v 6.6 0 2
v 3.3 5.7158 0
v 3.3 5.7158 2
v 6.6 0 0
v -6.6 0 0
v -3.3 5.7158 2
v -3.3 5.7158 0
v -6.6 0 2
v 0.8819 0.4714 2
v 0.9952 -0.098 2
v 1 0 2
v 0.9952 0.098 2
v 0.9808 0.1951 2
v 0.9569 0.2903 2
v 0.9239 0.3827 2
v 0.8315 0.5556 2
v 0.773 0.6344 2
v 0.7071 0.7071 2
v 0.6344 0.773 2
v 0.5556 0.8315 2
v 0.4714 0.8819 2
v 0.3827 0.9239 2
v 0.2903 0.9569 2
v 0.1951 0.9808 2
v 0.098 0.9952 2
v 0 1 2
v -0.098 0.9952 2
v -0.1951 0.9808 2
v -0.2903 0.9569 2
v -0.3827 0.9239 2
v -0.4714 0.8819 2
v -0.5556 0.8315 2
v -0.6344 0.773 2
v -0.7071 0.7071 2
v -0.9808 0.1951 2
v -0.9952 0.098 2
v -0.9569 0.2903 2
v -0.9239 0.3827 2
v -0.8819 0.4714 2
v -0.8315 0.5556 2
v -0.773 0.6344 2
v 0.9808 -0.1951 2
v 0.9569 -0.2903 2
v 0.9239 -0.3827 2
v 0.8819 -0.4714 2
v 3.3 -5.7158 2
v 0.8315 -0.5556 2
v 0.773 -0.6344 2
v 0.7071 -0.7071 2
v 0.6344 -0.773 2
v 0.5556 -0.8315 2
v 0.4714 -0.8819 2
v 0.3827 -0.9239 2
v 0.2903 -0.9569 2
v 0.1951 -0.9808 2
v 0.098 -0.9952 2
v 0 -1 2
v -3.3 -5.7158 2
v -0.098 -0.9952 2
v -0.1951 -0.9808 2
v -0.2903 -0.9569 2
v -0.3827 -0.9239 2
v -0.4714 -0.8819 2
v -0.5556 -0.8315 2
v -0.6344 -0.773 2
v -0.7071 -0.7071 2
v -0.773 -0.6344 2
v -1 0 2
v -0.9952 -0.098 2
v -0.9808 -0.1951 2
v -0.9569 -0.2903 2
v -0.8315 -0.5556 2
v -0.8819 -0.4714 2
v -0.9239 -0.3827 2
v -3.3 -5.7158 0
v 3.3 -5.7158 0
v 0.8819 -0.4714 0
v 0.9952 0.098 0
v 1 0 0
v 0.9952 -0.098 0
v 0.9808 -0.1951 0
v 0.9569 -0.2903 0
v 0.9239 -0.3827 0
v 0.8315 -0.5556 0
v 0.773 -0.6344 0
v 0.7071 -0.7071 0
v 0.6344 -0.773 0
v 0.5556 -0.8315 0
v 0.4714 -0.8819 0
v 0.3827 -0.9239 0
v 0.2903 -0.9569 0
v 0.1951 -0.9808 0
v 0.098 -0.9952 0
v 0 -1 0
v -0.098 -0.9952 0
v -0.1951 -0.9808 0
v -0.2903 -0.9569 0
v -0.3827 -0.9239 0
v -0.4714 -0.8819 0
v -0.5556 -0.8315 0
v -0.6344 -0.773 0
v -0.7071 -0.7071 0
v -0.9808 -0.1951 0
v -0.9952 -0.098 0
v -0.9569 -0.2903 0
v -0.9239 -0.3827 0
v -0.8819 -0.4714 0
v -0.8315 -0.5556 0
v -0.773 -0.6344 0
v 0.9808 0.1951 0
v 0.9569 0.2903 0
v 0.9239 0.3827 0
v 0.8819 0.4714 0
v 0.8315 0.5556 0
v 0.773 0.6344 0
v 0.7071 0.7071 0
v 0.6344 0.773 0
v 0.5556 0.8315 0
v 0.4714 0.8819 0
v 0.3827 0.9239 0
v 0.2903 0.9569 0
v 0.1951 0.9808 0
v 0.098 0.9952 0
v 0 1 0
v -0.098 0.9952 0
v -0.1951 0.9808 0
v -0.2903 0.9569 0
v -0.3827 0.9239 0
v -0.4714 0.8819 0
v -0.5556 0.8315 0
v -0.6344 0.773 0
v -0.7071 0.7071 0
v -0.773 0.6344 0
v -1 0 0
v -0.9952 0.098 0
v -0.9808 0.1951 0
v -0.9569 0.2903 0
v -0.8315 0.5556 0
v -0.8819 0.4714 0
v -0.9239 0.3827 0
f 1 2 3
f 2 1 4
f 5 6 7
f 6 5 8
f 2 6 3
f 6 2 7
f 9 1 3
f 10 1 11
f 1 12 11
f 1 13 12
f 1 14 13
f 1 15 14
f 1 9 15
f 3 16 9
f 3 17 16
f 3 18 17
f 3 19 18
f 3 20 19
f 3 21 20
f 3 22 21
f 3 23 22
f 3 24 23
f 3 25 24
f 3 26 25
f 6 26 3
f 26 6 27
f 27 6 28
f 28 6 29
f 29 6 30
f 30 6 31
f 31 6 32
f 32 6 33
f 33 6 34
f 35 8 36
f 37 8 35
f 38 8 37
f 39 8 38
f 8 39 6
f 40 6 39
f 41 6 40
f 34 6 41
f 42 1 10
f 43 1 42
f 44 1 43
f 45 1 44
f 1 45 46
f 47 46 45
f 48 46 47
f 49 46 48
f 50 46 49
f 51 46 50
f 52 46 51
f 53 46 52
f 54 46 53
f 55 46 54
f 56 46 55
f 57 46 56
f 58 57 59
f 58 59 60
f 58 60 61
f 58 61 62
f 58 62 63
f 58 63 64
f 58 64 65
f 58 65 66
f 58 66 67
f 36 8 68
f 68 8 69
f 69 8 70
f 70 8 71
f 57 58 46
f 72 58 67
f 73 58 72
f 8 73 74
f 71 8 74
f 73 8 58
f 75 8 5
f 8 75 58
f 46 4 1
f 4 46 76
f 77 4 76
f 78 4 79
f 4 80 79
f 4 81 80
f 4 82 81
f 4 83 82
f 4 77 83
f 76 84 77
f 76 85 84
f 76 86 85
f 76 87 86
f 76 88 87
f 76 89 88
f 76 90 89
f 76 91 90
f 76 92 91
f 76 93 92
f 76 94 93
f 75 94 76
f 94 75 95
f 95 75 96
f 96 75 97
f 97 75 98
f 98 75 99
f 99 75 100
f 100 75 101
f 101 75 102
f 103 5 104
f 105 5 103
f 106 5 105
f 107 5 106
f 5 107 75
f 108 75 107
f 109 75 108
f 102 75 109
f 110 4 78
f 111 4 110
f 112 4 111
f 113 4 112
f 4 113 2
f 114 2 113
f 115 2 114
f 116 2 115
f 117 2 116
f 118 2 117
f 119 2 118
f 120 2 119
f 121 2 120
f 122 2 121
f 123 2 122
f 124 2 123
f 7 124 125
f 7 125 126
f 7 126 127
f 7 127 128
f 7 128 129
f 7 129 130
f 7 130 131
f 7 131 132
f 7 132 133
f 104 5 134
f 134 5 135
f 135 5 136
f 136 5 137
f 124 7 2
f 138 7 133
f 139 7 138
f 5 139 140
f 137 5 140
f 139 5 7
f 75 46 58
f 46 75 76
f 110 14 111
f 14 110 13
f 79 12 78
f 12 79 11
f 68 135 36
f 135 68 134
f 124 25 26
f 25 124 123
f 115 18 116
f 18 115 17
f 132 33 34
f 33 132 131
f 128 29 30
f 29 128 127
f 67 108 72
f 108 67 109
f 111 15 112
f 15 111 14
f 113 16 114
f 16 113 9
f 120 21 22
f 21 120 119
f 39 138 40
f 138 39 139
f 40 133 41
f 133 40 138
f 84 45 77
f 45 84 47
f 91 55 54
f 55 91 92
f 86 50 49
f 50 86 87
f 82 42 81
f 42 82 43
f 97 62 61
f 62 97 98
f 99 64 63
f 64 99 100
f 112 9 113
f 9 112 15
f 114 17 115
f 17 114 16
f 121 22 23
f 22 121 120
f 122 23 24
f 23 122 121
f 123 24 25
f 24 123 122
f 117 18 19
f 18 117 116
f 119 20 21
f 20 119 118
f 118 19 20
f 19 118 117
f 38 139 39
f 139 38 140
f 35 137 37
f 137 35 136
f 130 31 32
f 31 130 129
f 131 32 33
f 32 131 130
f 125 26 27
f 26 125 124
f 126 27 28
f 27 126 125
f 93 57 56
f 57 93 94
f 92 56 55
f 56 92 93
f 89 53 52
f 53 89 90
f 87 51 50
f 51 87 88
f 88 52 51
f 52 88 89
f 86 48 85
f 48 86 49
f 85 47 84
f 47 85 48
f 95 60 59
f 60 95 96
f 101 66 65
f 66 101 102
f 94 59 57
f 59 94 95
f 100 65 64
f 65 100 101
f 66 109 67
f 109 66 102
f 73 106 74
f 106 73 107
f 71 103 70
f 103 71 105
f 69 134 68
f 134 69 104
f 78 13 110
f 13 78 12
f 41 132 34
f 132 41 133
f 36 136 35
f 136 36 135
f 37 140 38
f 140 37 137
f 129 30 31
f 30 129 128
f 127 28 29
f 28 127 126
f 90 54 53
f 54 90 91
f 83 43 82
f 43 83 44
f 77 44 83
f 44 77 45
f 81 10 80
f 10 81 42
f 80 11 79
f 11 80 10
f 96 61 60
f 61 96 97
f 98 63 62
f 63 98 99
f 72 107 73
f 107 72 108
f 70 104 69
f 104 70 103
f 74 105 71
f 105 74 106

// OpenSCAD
difference() {
cylinder(r=6.6, h=2, $fn=6);
cylinder(r=1, h=10, $fn=64);
}
